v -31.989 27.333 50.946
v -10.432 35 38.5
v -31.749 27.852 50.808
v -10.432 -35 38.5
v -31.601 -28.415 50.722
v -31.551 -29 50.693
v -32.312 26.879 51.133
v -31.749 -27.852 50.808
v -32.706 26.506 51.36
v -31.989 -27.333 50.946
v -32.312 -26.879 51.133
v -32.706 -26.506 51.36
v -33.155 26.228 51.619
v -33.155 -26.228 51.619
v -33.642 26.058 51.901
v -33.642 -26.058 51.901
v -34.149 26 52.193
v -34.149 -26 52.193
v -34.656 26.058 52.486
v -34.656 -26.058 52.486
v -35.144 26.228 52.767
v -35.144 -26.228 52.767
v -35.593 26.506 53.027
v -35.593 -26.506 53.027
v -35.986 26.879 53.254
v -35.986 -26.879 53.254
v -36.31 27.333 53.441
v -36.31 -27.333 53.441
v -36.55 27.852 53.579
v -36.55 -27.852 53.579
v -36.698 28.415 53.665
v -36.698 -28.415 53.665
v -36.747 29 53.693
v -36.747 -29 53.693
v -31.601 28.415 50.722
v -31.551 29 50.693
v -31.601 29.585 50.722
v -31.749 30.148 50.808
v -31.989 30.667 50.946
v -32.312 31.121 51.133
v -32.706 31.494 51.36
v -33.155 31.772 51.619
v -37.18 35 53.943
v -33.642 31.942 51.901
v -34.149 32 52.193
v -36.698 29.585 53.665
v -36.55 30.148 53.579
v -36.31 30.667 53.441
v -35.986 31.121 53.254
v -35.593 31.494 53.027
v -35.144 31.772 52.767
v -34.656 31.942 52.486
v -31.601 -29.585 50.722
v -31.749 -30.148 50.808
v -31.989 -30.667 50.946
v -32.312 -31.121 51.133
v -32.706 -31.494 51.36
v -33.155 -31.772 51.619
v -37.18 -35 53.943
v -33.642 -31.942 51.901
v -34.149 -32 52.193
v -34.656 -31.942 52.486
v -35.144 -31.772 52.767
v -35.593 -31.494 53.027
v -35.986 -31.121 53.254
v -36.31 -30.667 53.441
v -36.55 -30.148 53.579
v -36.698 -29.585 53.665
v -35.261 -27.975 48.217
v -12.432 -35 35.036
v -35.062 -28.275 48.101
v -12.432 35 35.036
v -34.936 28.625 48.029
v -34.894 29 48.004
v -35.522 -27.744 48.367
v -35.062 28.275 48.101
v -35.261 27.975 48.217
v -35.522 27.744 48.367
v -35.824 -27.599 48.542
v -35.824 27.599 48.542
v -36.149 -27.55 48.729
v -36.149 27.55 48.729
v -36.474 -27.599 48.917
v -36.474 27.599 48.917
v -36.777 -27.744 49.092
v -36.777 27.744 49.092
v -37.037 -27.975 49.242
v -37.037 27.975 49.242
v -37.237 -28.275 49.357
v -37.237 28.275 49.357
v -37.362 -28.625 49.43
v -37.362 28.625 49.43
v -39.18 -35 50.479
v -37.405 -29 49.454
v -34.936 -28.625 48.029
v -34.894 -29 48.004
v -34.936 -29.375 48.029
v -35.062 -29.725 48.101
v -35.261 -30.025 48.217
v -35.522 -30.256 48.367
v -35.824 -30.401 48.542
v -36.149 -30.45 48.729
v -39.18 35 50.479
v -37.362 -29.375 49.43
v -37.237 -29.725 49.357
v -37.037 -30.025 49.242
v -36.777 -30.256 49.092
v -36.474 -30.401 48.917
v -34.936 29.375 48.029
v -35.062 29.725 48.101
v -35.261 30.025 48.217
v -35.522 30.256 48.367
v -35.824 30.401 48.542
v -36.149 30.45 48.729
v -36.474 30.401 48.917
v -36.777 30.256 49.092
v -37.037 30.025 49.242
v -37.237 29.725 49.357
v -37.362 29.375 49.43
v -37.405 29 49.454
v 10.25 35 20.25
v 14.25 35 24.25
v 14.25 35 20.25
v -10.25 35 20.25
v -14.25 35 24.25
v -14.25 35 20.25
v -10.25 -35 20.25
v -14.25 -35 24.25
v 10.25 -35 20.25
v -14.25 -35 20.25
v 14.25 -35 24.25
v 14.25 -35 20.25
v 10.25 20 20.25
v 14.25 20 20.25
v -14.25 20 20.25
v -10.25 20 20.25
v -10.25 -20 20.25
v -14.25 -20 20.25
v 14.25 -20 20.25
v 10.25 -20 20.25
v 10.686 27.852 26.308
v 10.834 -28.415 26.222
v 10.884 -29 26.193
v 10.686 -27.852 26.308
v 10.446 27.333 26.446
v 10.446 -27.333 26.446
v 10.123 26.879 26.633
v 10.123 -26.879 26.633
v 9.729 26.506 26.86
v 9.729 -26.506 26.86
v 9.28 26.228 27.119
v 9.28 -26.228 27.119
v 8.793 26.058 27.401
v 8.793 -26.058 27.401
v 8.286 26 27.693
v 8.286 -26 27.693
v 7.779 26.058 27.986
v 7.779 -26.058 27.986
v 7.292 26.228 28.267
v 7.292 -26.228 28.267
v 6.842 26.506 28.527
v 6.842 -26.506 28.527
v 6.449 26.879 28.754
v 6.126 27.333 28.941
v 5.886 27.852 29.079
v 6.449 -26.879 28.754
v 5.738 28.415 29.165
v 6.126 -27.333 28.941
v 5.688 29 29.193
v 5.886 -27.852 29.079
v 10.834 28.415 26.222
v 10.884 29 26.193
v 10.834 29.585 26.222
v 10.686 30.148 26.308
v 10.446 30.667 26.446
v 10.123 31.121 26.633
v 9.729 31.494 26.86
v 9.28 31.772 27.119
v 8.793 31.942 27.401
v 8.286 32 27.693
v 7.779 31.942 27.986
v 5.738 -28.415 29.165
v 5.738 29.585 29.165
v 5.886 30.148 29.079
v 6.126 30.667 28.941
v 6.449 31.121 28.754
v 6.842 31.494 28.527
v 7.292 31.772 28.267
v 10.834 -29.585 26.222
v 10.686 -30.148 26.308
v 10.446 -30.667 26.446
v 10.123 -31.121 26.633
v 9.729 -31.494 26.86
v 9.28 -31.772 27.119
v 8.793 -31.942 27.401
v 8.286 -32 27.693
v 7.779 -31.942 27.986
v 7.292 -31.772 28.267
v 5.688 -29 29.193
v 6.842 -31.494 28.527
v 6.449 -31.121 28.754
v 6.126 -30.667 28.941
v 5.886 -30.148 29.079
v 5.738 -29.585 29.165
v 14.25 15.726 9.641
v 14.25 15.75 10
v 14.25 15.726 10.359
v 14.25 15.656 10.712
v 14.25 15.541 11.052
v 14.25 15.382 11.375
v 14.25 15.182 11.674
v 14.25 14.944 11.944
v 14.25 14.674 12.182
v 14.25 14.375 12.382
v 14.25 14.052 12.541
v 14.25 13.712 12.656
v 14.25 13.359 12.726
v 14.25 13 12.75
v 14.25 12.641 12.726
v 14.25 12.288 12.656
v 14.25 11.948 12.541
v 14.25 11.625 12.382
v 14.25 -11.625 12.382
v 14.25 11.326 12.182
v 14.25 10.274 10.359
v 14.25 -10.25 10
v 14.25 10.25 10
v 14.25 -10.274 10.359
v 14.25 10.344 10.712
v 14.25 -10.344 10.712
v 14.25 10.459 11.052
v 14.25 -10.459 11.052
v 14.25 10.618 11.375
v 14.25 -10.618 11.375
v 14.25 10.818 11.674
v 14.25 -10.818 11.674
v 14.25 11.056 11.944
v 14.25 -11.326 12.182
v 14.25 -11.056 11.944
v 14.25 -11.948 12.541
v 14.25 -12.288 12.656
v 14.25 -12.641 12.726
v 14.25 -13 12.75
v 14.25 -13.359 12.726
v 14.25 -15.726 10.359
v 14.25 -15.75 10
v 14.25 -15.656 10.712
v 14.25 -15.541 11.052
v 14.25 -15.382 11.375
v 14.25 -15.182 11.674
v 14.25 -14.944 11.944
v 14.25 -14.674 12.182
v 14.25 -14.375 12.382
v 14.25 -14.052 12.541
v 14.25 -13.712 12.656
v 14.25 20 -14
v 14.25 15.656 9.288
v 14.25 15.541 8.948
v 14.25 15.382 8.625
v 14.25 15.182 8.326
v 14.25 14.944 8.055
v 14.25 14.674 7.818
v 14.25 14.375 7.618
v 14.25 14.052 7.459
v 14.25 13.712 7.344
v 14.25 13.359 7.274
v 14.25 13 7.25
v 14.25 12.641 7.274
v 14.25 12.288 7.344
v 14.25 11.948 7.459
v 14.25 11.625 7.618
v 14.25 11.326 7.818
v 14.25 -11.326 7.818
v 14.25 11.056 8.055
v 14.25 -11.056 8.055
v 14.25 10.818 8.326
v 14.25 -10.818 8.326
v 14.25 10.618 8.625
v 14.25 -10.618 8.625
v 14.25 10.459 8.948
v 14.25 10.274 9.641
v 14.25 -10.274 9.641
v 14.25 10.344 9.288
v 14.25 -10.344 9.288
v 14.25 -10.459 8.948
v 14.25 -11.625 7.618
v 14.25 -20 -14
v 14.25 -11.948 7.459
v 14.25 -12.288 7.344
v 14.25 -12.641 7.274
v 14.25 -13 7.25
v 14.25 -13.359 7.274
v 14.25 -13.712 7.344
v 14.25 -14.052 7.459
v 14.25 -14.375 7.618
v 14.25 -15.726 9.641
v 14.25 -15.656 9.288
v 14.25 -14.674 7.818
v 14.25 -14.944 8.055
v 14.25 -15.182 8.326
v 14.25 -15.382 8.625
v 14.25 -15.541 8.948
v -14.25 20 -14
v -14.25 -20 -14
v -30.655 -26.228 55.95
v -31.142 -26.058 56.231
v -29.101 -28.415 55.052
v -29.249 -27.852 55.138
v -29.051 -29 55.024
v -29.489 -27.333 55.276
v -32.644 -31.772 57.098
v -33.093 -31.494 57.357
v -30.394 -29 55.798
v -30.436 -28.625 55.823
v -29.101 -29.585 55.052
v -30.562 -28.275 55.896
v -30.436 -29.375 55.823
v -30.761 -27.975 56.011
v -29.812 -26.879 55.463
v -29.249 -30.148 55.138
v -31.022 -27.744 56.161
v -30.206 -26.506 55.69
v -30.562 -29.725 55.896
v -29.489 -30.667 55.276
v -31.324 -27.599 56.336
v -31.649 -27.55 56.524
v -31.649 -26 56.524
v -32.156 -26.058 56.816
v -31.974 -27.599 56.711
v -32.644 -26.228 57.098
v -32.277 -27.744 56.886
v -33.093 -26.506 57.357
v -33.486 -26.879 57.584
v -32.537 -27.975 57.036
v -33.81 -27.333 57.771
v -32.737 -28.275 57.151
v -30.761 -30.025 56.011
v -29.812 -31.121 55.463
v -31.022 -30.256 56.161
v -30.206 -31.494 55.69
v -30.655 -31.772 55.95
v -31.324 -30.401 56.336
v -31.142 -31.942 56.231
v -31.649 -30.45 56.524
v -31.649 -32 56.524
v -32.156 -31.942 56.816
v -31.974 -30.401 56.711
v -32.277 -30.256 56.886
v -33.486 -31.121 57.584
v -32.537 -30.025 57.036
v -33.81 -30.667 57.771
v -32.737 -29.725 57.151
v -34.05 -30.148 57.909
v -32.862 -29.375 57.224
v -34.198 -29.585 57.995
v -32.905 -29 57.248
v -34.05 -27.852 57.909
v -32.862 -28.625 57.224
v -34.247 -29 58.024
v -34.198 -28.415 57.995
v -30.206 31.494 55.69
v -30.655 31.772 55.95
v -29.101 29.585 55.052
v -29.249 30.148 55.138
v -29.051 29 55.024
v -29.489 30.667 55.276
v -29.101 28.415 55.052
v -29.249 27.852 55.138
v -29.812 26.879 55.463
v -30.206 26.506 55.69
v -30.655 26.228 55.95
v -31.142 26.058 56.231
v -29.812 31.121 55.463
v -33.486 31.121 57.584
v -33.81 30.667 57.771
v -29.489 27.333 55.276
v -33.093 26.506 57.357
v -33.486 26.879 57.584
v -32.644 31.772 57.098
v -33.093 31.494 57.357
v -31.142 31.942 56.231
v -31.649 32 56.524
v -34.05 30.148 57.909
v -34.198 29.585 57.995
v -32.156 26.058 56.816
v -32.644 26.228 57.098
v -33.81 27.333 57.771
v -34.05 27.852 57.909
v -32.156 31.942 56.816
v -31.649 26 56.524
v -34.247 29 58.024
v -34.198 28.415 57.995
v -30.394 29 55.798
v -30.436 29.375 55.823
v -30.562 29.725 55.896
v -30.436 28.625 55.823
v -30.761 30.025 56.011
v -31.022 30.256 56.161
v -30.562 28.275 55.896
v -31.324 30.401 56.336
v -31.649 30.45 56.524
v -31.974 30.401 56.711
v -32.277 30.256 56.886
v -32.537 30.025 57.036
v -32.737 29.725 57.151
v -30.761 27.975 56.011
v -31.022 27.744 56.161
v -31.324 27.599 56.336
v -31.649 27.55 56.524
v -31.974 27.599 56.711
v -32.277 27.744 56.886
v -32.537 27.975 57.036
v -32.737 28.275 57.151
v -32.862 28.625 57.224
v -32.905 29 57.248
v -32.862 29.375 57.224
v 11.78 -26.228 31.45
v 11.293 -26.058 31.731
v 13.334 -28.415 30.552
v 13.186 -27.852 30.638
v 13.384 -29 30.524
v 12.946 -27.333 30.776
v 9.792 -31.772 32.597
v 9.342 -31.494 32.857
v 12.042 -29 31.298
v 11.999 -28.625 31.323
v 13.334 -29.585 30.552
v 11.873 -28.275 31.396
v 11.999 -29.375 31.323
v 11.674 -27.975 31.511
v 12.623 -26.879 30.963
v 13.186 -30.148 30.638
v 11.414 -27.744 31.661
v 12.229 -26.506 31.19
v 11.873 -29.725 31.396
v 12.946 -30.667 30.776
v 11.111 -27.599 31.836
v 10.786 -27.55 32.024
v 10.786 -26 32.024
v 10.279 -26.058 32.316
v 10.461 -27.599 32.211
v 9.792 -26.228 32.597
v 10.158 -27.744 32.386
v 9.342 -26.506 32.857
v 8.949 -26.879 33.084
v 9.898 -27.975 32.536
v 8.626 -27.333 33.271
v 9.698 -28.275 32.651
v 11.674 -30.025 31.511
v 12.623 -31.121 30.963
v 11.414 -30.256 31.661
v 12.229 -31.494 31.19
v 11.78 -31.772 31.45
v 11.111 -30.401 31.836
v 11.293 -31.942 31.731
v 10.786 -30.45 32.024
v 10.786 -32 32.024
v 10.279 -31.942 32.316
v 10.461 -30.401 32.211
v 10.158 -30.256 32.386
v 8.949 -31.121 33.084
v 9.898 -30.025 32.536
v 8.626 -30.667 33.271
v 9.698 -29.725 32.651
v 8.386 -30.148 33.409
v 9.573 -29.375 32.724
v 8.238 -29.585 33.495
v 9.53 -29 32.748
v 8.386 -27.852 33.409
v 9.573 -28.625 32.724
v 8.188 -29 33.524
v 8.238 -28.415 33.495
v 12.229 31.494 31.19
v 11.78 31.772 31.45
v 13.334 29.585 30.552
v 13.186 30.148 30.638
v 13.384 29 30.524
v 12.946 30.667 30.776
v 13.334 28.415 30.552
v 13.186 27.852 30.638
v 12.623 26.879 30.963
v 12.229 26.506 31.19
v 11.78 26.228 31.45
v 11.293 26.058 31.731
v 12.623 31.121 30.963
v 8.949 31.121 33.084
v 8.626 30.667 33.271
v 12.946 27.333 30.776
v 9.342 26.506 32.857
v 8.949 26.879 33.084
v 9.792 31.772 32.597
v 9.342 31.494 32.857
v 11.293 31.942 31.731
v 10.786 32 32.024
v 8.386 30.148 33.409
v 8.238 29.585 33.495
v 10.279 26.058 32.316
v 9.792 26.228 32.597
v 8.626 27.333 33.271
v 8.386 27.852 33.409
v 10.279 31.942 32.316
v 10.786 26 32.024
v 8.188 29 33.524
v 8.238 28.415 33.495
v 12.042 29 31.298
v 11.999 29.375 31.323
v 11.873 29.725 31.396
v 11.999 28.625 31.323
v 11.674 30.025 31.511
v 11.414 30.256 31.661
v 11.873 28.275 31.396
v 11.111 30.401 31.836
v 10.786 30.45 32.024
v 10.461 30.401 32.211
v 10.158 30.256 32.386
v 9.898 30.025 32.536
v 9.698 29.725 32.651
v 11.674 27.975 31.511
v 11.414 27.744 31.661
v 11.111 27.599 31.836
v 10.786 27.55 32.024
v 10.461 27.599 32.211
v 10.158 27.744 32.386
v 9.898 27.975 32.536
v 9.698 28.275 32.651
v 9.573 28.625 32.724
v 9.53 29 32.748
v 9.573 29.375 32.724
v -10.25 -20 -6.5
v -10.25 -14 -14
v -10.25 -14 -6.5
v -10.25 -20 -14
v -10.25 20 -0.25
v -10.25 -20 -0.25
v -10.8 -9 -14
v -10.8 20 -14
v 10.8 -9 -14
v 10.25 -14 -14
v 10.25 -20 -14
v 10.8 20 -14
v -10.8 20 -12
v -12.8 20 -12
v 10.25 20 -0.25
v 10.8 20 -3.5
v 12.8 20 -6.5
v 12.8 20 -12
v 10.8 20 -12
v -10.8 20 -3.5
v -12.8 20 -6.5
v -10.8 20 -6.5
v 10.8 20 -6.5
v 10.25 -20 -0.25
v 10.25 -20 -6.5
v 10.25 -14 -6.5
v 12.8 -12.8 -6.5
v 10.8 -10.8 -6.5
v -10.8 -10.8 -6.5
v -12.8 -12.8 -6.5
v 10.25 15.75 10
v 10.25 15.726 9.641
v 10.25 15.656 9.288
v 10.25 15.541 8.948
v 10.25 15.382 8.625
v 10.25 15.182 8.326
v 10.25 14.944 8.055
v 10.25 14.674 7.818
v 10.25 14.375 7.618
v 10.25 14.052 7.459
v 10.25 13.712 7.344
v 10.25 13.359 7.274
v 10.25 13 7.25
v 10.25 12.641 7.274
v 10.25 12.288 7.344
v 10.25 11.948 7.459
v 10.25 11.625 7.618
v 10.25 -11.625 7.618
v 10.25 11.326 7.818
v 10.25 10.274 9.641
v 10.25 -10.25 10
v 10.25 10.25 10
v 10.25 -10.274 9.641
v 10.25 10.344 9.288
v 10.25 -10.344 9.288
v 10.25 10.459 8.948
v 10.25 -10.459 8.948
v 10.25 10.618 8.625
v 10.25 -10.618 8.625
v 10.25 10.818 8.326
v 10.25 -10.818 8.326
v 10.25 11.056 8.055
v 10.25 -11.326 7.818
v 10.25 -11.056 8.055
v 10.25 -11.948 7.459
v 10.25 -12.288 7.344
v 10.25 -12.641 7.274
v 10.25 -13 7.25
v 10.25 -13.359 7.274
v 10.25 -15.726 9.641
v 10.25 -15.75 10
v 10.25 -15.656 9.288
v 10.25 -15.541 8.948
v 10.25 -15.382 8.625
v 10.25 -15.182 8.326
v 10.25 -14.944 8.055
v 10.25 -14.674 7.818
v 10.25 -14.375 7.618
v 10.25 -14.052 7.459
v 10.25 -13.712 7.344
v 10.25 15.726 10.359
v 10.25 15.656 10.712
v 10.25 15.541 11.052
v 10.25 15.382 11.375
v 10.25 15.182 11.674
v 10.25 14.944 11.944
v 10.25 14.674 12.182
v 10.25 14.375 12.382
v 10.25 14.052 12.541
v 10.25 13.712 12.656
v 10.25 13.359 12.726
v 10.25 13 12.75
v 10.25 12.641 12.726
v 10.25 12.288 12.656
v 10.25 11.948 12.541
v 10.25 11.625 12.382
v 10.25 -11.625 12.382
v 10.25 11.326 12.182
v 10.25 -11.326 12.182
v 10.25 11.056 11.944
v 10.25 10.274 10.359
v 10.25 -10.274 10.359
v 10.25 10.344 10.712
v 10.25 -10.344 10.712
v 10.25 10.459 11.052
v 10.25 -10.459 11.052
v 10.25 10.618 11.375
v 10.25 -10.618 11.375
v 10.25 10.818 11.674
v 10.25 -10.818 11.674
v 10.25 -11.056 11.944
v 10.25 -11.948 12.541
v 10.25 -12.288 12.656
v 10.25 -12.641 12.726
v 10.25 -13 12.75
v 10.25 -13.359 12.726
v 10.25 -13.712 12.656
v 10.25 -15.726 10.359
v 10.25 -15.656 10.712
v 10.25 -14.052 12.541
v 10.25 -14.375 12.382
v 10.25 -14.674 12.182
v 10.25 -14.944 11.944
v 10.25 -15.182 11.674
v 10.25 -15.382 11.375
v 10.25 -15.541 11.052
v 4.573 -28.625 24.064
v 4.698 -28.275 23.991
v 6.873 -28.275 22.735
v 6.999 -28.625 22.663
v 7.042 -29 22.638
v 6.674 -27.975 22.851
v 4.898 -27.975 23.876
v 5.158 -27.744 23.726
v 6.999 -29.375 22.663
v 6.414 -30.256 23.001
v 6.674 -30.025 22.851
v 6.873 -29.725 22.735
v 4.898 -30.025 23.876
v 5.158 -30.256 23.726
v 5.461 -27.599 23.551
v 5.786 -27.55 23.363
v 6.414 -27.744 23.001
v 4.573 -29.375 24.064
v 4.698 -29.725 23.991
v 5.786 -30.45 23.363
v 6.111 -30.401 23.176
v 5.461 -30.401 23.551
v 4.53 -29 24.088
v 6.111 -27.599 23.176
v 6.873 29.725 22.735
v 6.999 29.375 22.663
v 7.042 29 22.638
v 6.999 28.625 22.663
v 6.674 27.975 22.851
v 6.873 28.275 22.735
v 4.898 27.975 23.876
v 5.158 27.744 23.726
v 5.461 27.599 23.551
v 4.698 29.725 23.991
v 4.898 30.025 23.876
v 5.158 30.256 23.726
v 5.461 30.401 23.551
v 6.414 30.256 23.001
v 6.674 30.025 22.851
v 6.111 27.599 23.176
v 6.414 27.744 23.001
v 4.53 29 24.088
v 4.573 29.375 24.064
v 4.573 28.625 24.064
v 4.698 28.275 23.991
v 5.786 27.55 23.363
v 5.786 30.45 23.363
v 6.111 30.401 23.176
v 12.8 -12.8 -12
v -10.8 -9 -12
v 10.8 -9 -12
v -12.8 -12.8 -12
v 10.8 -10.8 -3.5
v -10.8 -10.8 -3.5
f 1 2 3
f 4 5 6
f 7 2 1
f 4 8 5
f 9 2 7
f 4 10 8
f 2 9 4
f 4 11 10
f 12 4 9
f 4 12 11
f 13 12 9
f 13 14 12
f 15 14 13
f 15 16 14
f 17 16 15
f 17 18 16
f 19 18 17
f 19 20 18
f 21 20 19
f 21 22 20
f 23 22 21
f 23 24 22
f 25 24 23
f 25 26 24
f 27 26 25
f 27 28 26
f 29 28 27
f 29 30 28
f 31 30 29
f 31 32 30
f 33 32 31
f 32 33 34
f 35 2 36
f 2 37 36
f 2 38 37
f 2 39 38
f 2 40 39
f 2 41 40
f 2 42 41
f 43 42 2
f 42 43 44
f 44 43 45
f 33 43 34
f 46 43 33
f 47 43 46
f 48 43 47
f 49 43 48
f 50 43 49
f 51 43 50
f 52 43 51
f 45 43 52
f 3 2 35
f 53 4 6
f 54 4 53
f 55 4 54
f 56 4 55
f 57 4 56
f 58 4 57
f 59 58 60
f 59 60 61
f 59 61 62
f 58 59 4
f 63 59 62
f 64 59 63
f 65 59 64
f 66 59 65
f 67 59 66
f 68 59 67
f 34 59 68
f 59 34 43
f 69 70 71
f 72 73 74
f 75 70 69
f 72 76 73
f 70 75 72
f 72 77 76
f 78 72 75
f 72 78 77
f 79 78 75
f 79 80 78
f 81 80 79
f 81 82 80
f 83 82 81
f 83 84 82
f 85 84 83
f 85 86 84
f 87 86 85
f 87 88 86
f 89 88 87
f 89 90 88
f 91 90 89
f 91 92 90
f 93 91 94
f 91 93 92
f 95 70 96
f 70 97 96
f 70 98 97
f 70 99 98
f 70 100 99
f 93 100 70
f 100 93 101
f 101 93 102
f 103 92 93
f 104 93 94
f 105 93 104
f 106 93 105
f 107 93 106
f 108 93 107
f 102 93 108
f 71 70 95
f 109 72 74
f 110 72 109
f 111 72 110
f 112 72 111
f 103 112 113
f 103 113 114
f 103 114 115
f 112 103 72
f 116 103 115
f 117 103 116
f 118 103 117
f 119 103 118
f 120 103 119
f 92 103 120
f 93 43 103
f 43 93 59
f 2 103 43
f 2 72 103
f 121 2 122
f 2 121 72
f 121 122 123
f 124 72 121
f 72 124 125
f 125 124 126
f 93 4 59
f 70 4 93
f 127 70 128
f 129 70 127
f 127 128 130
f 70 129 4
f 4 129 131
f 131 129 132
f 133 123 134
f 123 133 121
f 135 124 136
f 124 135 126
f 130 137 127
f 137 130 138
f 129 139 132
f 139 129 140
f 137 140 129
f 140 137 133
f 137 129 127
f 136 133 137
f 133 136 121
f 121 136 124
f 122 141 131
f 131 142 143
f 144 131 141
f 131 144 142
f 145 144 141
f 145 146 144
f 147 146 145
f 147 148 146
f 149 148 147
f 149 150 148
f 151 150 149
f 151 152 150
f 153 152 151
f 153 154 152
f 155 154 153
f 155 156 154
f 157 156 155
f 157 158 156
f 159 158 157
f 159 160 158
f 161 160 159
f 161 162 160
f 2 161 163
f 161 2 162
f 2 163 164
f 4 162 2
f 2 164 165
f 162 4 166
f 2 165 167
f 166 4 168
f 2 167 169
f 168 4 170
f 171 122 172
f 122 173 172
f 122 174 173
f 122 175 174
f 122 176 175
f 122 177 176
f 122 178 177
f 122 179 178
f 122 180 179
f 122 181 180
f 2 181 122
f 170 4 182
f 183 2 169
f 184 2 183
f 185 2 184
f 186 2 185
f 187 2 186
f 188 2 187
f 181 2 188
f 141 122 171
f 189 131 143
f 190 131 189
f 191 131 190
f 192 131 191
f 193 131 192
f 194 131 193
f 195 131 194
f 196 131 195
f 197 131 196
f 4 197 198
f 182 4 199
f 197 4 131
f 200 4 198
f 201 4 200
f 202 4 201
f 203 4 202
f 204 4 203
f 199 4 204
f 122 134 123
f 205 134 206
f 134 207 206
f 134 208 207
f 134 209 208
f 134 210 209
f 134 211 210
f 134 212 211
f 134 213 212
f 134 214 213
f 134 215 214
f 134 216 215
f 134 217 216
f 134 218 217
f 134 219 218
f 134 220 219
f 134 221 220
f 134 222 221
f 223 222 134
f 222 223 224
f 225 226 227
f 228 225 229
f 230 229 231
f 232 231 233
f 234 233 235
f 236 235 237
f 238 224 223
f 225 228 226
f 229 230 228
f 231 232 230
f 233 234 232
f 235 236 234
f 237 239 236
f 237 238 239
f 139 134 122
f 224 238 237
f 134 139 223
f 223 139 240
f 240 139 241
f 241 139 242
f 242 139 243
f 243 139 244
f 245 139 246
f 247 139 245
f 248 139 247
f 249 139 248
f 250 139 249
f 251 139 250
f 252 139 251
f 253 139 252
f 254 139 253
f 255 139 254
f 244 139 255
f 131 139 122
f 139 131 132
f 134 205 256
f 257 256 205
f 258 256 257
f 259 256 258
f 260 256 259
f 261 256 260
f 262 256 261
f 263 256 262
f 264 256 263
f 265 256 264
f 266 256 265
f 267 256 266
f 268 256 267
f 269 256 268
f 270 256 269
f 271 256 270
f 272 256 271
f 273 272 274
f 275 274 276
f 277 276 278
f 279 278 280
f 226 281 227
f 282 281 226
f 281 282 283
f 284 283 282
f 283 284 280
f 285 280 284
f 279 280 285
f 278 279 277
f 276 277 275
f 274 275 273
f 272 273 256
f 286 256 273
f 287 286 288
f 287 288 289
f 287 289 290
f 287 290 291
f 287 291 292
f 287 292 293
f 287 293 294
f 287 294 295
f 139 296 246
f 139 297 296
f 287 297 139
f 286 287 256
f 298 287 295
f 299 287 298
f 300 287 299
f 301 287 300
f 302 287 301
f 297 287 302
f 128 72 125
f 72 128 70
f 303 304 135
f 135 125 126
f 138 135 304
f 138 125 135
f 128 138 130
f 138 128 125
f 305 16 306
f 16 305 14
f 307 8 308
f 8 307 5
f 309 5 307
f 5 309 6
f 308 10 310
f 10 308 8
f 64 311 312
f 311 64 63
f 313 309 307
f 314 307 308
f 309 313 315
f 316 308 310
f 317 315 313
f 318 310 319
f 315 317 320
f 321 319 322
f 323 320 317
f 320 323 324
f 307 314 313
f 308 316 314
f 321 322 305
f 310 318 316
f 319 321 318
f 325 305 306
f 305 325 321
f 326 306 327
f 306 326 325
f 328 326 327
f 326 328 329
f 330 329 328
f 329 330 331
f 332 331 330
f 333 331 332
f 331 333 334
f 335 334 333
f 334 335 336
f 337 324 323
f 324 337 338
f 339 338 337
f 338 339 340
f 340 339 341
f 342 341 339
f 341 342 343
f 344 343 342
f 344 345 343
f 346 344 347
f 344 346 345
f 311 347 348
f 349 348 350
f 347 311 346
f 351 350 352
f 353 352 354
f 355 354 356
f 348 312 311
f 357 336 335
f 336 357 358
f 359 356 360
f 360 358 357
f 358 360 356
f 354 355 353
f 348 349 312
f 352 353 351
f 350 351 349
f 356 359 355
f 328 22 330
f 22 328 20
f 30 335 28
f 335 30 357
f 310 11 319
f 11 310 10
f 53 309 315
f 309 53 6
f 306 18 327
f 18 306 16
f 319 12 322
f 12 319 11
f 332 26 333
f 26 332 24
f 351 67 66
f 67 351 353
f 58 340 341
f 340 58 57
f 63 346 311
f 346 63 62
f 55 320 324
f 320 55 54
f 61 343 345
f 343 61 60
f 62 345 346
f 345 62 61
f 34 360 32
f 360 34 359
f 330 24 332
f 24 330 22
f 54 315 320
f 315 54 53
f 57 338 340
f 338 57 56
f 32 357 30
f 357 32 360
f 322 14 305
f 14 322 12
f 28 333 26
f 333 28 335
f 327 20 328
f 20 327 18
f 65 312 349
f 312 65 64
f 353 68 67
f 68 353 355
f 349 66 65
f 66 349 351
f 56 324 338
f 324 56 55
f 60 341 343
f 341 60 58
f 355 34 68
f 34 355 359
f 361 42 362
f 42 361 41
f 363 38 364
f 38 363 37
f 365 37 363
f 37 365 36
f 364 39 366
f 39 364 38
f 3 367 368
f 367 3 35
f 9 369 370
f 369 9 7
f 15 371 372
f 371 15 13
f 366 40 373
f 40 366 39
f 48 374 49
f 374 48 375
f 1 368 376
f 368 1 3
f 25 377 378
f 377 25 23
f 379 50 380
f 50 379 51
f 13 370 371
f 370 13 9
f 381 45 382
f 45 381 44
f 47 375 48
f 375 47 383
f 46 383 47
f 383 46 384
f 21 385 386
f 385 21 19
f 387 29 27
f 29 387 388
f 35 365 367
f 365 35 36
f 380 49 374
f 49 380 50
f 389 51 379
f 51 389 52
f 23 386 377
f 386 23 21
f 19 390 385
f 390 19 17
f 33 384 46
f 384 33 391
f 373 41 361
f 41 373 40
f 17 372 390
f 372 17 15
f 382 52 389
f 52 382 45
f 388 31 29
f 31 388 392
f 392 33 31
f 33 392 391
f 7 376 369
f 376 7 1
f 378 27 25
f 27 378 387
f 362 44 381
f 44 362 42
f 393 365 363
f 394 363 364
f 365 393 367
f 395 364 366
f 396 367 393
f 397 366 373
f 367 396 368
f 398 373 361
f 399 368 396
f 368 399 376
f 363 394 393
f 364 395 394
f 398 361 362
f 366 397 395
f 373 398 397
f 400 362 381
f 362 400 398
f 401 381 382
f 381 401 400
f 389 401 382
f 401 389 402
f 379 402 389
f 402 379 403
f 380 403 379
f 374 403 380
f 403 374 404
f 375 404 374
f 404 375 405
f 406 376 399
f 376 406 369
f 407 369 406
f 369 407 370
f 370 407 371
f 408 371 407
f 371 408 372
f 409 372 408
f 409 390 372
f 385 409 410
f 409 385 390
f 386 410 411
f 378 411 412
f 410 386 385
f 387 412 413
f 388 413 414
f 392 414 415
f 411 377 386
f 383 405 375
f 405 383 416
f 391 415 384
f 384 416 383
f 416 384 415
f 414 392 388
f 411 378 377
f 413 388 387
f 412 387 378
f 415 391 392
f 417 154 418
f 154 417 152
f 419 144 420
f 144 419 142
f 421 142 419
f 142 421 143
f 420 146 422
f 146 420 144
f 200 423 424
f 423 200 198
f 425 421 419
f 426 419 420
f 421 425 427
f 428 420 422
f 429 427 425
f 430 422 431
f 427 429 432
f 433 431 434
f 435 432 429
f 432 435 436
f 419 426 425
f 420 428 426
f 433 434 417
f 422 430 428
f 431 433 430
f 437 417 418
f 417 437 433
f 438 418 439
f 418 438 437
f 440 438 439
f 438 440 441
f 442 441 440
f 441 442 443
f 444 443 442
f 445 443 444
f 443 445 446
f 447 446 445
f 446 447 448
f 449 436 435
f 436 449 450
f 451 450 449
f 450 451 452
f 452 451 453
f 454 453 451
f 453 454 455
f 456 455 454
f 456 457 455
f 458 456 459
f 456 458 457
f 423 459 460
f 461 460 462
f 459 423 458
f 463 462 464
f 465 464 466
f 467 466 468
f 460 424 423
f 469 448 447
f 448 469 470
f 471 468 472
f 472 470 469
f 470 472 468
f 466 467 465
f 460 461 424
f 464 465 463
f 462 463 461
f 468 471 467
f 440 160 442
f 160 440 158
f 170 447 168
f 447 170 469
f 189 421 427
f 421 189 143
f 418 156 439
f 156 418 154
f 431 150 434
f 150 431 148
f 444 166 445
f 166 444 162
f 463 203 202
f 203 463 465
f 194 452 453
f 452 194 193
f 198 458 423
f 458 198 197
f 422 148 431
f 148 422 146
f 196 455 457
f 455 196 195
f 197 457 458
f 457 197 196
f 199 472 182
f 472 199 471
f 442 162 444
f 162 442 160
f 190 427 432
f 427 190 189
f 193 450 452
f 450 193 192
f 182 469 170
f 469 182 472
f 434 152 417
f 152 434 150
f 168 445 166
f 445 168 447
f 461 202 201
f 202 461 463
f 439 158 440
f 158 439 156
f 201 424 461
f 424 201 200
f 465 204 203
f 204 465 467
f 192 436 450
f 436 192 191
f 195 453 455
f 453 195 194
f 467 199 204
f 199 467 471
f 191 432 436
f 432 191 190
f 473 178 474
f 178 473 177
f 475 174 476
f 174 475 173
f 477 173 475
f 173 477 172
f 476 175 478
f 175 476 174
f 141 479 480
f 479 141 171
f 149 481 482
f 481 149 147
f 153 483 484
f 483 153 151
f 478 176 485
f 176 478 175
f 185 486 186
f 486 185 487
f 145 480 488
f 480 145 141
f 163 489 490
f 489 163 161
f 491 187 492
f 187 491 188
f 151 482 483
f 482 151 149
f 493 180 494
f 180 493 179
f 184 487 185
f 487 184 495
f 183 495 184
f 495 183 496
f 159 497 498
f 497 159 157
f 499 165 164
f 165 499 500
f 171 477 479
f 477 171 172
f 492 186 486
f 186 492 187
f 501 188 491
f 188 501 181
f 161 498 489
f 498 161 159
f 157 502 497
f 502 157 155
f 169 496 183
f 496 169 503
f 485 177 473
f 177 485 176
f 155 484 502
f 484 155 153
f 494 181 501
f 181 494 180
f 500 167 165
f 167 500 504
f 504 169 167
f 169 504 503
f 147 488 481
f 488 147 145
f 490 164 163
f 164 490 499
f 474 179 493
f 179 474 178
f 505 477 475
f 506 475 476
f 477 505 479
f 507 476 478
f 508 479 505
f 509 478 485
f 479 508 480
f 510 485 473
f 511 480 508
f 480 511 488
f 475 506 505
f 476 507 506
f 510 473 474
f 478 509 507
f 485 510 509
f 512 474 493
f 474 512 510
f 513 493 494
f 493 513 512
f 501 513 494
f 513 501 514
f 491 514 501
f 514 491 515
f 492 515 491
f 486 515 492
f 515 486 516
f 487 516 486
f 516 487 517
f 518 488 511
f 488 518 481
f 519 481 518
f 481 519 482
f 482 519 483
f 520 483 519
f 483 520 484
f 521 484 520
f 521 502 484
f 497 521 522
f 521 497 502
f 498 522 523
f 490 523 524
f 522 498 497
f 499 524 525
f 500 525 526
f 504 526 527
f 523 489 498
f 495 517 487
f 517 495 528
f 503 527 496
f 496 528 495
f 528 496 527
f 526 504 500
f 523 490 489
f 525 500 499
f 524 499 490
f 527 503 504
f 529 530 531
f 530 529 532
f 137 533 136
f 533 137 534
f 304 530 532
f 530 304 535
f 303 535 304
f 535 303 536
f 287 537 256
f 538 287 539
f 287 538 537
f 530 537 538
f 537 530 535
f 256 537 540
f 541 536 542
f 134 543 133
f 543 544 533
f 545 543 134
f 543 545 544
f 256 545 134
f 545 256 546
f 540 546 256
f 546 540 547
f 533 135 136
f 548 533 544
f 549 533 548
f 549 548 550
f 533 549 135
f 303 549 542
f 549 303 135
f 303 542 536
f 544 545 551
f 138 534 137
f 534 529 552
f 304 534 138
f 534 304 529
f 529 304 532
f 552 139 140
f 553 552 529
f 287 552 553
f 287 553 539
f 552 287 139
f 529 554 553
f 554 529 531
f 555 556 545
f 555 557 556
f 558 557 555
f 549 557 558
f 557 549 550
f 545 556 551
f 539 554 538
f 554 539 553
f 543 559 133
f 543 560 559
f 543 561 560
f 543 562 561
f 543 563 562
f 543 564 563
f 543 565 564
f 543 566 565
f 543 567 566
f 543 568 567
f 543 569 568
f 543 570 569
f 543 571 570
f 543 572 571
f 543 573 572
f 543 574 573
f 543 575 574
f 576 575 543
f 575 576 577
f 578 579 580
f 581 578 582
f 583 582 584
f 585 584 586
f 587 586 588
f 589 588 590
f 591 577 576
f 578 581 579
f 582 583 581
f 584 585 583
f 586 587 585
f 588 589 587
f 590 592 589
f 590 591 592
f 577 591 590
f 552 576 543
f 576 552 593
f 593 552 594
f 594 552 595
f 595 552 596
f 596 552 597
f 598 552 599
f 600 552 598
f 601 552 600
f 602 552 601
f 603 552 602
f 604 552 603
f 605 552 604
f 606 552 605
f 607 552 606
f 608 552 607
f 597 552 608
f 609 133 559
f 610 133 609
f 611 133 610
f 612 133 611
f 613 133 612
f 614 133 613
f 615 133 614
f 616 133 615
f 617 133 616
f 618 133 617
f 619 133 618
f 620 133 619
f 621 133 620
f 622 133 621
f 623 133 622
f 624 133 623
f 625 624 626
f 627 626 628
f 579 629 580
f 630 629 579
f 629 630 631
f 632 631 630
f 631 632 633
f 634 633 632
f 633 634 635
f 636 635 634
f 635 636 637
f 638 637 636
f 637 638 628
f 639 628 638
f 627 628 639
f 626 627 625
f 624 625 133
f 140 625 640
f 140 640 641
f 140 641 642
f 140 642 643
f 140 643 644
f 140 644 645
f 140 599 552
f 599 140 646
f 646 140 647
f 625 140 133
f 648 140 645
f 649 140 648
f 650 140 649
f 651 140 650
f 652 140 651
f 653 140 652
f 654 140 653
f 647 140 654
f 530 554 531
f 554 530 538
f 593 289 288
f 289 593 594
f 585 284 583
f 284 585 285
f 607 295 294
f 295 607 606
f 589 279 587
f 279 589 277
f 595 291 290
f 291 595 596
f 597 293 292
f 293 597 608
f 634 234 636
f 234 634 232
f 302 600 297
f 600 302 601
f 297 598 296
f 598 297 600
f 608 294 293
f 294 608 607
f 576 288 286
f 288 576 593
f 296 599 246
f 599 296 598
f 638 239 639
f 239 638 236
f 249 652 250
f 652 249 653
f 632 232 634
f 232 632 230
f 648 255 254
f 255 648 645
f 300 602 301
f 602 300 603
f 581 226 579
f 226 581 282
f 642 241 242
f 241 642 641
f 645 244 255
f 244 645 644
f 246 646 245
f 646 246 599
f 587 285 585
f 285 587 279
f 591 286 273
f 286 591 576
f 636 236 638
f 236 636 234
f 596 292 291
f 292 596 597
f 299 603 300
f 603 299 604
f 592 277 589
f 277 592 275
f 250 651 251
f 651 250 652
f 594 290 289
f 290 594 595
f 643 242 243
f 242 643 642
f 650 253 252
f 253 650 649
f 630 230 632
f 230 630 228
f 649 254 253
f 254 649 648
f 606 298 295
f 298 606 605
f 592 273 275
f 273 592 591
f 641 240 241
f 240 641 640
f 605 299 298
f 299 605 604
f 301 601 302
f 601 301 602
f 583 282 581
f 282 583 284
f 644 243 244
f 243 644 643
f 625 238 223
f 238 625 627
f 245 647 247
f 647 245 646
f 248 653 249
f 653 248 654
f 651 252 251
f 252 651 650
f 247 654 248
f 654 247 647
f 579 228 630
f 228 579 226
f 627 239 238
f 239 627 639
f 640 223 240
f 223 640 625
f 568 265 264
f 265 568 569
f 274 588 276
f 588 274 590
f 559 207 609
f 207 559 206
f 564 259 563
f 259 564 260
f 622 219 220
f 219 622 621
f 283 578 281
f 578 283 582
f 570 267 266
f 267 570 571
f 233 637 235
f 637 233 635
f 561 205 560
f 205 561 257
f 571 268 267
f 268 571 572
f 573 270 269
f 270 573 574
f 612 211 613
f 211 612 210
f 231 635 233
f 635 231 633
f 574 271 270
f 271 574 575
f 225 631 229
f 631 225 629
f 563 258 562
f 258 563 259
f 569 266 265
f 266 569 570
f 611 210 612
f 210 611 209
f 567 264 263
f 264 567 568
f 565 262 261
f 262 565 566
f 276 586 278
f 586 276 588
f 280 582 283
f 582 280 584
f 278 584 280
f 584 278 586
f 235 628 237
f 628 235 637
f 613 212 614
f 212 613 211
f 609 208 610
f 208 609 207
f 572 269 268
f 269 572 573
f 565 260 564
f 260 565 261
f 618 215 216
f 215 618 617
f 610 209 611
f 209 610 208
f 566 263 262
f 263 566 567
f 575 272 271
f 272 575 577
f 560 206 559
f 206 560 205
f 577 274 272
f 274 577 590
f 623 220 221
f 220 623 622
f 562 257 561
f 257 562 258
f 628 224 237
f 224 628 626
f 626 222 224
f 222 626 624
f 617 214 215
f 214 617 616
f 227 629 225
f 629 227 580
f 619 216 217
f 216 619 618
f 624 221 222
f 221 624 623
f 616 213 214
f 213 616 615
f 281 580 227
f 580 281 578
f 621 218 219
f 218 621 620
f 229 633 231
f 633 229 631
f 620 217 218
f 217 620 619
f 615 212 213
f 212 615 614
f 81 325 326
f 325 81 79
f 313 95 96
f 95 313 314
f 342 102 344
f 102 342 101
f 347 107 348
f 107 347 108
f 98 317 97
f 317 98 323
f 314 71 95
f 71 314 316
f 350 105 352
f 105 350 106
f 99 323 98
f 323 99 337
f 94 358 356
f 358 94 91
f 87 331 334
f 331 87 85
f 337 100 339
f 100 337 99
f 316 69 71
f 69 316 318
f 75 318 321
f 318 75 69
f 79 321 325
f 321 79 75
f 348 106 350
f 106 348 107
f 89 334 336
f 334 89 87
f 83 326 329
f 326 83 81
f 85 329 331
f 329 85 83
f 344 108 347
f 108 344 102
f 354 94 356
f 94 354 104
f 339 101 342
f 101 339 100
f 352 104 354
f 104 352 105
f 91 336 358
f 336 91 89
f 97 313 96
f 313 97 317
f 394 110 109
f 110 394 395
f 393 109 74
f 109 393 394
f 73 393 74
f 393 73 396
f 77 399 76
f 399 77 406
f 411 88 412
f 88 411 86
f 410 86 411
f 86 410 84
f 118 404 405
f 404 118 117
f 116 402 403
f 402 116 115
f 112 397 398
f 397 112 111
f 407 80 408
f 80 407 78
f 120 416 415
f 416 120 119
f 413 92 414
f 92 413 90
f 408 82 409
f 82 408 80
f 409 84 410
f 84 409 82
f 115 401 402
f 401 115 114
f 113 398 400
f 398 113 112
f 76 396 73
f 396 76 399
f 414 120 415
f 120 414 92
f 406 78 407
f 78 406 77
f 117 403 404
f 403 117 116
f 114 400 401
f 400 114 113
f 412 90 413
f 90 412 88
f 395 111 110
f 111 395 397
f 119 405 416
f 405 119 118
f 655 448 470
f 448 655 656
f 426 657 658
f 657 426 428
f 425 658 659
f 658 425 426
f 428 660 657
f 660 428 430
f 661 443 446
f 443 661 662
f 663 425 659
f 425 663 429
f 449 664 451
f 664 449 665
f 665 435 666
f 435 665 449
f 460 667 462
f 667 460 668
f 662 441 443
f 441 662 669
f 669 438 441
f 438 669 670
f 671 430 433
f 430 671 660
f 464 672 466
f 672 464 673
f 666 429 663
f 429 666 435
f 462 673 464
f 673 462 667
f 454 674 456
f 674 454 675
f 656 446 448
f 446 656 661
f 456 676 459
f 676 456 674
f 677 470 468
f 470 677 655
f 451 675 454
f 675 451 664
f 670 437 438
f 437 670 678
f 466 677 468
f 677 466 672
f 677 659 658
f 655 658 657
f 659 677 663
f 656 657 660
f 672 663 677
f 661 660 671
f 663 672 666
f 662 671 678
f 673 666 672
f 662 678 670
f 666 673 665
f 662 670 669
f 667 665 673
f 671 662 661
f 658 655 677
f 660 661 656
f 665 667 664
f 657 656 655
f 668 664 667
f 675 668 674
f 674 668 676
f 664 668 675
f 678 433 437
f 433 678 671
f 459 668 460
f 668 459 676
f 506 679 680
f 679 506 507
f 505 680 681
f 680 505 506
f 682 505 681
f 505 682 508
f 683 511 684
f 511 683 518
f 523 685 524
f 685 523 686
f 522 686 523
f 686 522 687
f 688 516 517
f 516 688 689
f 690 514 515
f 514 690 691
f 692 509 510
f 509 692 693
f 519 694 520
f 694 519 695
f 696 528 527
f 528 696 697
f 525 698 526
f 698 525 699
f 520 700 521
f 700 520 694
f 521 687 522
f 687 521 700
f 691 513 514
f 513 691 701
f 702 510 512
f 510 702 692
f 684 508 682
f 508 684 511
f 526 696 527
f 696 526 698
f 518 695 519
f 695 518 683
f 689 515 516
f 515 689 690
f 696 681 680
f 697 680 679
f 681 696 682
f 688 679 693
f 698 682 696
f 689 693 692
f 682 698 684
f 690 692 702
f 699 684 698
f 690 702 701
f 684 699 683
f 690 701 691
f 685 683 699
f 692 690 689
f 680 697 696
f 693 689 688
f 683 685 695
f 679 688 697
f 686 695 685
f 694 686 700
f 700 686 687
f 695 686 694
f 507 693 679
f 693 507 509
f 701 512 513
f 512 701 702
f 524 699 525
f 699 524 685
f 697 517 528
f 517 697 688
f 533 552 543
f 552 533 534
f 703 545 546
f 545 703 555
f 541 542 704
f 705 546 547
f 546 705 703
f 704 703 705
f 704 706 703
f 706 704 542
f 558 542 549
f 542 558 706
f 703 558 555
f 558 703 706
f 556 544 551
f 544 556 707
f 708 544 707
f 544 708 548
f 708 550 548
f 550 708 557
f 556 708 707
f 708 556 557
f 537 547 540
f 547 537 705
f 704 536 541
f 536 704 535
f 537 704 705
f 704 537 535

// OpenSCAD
// file: common-2020.scad
// Shared socket geometry for the scanner stand brackets.
// A socket holds the end of a 2020 profile running down -Z from its closed end at z=0.

$fn = 48;

profile     = 20;
clearance   = 0.25;   // per side; raise if the profile will not slide in
wall        = 4;
depth       = 30;     // how far a profile slides into a socket
screw_d     = 5.5;
screw_depth = [9, 22];

inner = profile + 2 * clearance;
outer = inner + 2 * wall;
far   = 400;          // long enough to clear anything a hull adds in a profile's path

module socket_body() translate([-outer / 2, -outer / 2, -depth]) cube([outer, outer, depth + wall]);

module socket_void() translate([-inner / 2, -inner / 2, -far]) cube([inner, inner, far]);

// M5 holes through the front and back walls, into T-nuts in the profile's slots.
module socket_screws(depths = screw_depth)
    for (d = depths)
        translate([0, 0, -d]) rotate([90, 0, 0]) cylinder(d = screw_d, h = outer + 2, center = true);
// file: pi-camera-bracket.scad
// One-piece mount for the Pi and the camera on the cross bar of the triangle stand.
// A C that wraps the bar: the Pi Zero screws onto the plate on top, the camera board
// slides into the slot underneath, looking down through the window, on the bar's
// centre line. The open side leaves room for the ribbon cable to run from the camera
// up to the Pi, and lets the mount come off the bar without taking the frame apart.
//
// The boards are held directly, so the cases from thingiverse:2615180 are not needed.
// Board sizes are the published ones for a Pi Zero and a Pi camera module; check them
// against yours, and change pi_holes / cam_board / board_t if they differ.
//
// Hardware: 2x M5x10 button head + 2x M5 T-nuts (slot 6) into the bar's side slot,
// 4x M3x6 self-tapping into the posts for the Pi.
// Print standing on its back, the face with the two M5 holes; PETG, 4+ walls,
// 40% infill, no supports.

include <common-2020.scad>

// Bar runs along Y with its bottom face at z=0. The mount grips its +X side.
back      = inner / 2 + wall;      // outer face of the part against the bar's side
top_z     = profile + clearance;   // underside of the plate over the bar
closed    = false;                 // a fourth wall on the open side: a ring the bar has
                                   // to be pushed through; see pi-camera-bracket-closed.scad

// Pi Zero: 65 x 30 board, holes 58 x 23 apart; M3 screws go through them.
// pi4-camera-bracket.scad sets these for a Pi 4 and reuses everything else.
pi_board  = [30, 65];
pi_tilt   = 0;                // degrees the Pi leans up toward the open side; see
                              // pi4-camera-bracket-tilted.scad
pi_holes  = [23, 58];
post_h    = 3;
post_d    = 6;
post_hole = 2.9;              // for M3 self-tapping; printed holes come out ~0.3 mm small
// Centre of the holes, across the bar: on the bar's centre line, unless that puts
// a post out past the back face the part stands on to print.
pi_x      = min(0, back - post_d / 2 - pi_holes[0] / 2);
plate     = [[-17, back], [-34, 34]];

// Camera board: 25 x 25 as measured, lens looking down through the window.
// The window runs out to the way in as a channel, so the lens barrel and whatever
// else stands out of the board's underside slide along it instead of hitting the floor.
// The board lies on the floor of the slot under its own weight, so slack above it
// costs nothing but makes it go in.
board     = [25, 25];
cam_board = board + [0.6, 0.6]; // the slot: 0.3 mm of play on each side, so the
                            // board goes in without room to rattle; in along +Y
// A closed ring cannot flex to let the board's cable connector squeeze under the
// lips, so its slot is 2 mm taller, and the camera block sits 2 mm lower to keep the
// same material between the slot and the bar.
board_t   = closed ? 5.5 : 3.5; // board, plus what is soldered within reach of the lips
window    = [21.6, 18];     // what the camera looks through, and the channel's width;
                            // what is left either side is the 2 mm ledge the board rests on
tray_z    = closed ? -14 : -12; // underside of the tray
floor_t   = 2;
rim       = 1.2;            // material around the slot, beside it and behind it
lip       = 2;              // how far the lips reach in over the board's edges

// The tray keeps `rim` of wall on the back side too, sitting over if the slot is
// wider than the room between the bar's side and the back of this part. The block
// is then the slot plus a rim each side, which is what makes it 28 mm across.
cam_x     = min(0, -(cam_board[0] / 2 + rim - back));

web_y     = 20;
bar_screws = [-13, 13];

slot_z    = tray_z + floor_t;

module plate() translate([plate[0][0], plate[1][0], top_z])
    cube([plate[0][1] - plate[0][0], plate[1][1] - plate[1][0], wall]);

// What sits on the bar: the plate's width over it, which stays flat however the
// Pi leans.
module roof() translate([-outer / 2, plate[1][0], top_z])
    cube([back + outer / 2, plate[1][1] - plate[1][0], wall]);

// The Pi's plate, leaned up by pi_tilt about its top edge along the back face.
// At no tilt this changes nothing.
module pi_frame() translate([back, 0, top_z + wall]) rotate([0, pi_tilt, 0])
    translate([-back, 0, -(top_z + wall)]) children();

// The leaned plate, and a wedge filling in under it over the bar.
module pi_plate() {
    pi_frame() plate();
    hull() { roof(); pi_frame() roof(); }
}

// Sunk half a millimetre into the plate rather than standing on it: once leaned,
// faces that only touch no longer quite meet, and the union leaves a seam.
module posts() pi_frame() for (x = [-1, 1], y = [-1, 1])
    translate([pi_x + x * pi_holes[0] / 2, y * pi_holes[1] / 2, top_z + wall - 0.5])
        cylinder(d = post_d, h = post_h + 0.5, $fn = 32);

module web() translate([inner / 2, -web_y, tray_z]) cube([wall, 2 * web_y, top_z + wall - tray_z]);

// The same wall on the open side, closing the C into a ring round the bar, and the
// gap under the bar filled down to the camera block, so the bar has the same
// clearance underneath as on its other three sides.
module side_wall() {
    translate([-inner / 2 - wall, -web_y, tray_z])
        cube([wall, 2 * web_y, top_z + wall - tray_z]);
    translate([-inner / 2 - wall, -web_y, tray_z + floor_t + board_t])
        cube([inner + 2 * wall, 2 * web_y, -(tray_z + floor_t + board_t)]);
}

module tray() translate([cam_x - cam_board[0] / 2 - rim, -cam_board[1] / 2 - rim, tray_z])
    cube([cam_board[0] / 2 + rim + back - cam_x, cam_board[1] + 2 * rim,
          floor_t + board_t + lip]);

difference() {
    union() { pi_plate(); posts(); web(); tray(); if (closed) side_wall(); }

    // the bar itself, and the slot the camera board slides into
    // Open on the far side, unless the ring is closed: then only the bar's own size,
    // with clearance underneath as well.
    open_to = closed ? inner / 2 : far;
    below   = closed ? clearance : 0;
    translate([-open_to, -far, -below]) cube([open_to + inner / 2, 2 * far, top_z + below]);
    // The slot: a plain rectangle, straight in from the mouth to the back wall.
    translate([cam_x - cam_board[0] / 2, -cam_board[1] / 2, slot_z])
        cube([cam_board[0], far, board_t]);
    // over the board: open, apart from a lip along each side
    translate([cam_x - cam_board[0] / 2 + lip, -cam_board[1] / 2 + lip, slot_z + board_t])
        cube([cam_board[0] - 2 * lip, far, lip + 1]);
    // what the camera looks through
    translate([cam_x - window[0] / 2, -window[1] / 2, tray_z - 1])
        cube([window[0], far, floor_t + 2]);

    for (y = bar_screws) translate([inner / 2 - 1, y, profile / 2]) rotate([0, 90, 0]) cylinder(d = screw_d, h = wall + 2);
    pi_frame() for (x = [-1, 1], y = [-1, 1])
        translate([pi_x + x * pi_holes[0] / 2, y * pi_holes[1] / 2, top_z - 1])
            cylinder(d = post_hole, h = wall + post_h + 2, $fn = 24);
}
// file: pi4-camera-bracket.scad
// The Pi and camera mount from pi-camera-bracket.scad, for a Raspberry Pi 4.
// Everything but the plate on top is the same part: the camera slot, the clamp to
// the bar's side slot, the screws.
//
// The Pi 4 is 85 x 56, far wider than the bar, so its plate reaches out over the
// open side of the C. It stops flush with the back face, so the part still stands on
// that face to print. The Pi then sits off to that side of the bar, above the camera,
// where it cannot be in the picture.
//
// The camera plugs into the Pi 4's CSI connector with the standard 15-way ribbon,
// not the narrow Pi Zero one.
//
// Hardware: as pi-camera-bracket.scad, with 4x M3x8 for the Pi's taller posts.
// Print standing on its back, the face with the two M5 holes; PETG, 4+ walls,
// 40% infill, no supports.

include <pi-camera-bracket.scad>

// Pi 4: 85 x 56 board, holes 58 x 49 apart, 3.5 mm in from the edges.
pi_board  = [56, 85];
pi_holes  = [49, 58];
pi_x      = back - 3.5 - pi_holes[0] / 2;   // the board's edge flush with the back face
post_h    = 5;                              // air under a board that gets warm, and room
                                            // for what is soldered on its underside
plate     = [[back - pi_board[0], back], [-35, 35]];
// file: pi4-camera-bracket-tilted.scad
// The Pi 4 mount from pi4-camera-bracket.scad, with the Pi leaned up at pi_tilt.
// The plate turns about its edge along the back face, so the side that reaches out
// over the open side of the C rises instead of sticking straight out. What sits on
// the bar stays flat, with a wedge filling in between it and the leaned plate.
//
// Hardware: as pi4-camera-bracket.scad.
// Print standing on its back, the face with the two M5 holes; PETG, 4+ walls,
// 40% infill, no supports. The leaned plate is 30 degrees off upright that way,
// which prints without help.

include <pi4-camera-bracket.scad>

pi_tilt   = 30;

// Leaning up tips the post tops toward the back face, so the Pi moves in far enough
// that they stay behind it and the part still stands flat on that face to print.
pi_x      = back - 3.5 - pi_holes[0] / 2 - post_h * tan(pi_tilt) - 0.5;

// The plate grows on the far side by as much, so the far posts stay on it.
plate     = [[pi_x - pi_holes[0] / 2 - 3.5, back], [-35, 35]];
// main file
// The leaned Pi 4 mount from pi4-camera-bracket-tilted.scad, closed into a ring
// round the bar. It goes on over the end of the bar, before the apex brackets are
// fitted, and slides along it to the middle. The bar runs through a square hole
// with 0.25 mm clearance all round.
//
// The ribbon cable leaves the camera slot through its mouth, along the bar, and
// comes up to the Pi past the end of the ring.
//
// Hardware: 4x M3x8 self-tapping for the Pi. The two M5 holes stay: with an M5x10
// and a T-nut in the bar's side slot they stop the ring sliding once it is placed.
// Print standing on its back, the face with the two M5 holes; PETG, 4+ walls,
// 40% infill. The closing wall bridges 20 mm over the bar's tunnel, and the leaned
// plate is 30 degrees off upright; both print without supports.

include <pi4-camera-bracket-tilted.scad>

closed    = true;
